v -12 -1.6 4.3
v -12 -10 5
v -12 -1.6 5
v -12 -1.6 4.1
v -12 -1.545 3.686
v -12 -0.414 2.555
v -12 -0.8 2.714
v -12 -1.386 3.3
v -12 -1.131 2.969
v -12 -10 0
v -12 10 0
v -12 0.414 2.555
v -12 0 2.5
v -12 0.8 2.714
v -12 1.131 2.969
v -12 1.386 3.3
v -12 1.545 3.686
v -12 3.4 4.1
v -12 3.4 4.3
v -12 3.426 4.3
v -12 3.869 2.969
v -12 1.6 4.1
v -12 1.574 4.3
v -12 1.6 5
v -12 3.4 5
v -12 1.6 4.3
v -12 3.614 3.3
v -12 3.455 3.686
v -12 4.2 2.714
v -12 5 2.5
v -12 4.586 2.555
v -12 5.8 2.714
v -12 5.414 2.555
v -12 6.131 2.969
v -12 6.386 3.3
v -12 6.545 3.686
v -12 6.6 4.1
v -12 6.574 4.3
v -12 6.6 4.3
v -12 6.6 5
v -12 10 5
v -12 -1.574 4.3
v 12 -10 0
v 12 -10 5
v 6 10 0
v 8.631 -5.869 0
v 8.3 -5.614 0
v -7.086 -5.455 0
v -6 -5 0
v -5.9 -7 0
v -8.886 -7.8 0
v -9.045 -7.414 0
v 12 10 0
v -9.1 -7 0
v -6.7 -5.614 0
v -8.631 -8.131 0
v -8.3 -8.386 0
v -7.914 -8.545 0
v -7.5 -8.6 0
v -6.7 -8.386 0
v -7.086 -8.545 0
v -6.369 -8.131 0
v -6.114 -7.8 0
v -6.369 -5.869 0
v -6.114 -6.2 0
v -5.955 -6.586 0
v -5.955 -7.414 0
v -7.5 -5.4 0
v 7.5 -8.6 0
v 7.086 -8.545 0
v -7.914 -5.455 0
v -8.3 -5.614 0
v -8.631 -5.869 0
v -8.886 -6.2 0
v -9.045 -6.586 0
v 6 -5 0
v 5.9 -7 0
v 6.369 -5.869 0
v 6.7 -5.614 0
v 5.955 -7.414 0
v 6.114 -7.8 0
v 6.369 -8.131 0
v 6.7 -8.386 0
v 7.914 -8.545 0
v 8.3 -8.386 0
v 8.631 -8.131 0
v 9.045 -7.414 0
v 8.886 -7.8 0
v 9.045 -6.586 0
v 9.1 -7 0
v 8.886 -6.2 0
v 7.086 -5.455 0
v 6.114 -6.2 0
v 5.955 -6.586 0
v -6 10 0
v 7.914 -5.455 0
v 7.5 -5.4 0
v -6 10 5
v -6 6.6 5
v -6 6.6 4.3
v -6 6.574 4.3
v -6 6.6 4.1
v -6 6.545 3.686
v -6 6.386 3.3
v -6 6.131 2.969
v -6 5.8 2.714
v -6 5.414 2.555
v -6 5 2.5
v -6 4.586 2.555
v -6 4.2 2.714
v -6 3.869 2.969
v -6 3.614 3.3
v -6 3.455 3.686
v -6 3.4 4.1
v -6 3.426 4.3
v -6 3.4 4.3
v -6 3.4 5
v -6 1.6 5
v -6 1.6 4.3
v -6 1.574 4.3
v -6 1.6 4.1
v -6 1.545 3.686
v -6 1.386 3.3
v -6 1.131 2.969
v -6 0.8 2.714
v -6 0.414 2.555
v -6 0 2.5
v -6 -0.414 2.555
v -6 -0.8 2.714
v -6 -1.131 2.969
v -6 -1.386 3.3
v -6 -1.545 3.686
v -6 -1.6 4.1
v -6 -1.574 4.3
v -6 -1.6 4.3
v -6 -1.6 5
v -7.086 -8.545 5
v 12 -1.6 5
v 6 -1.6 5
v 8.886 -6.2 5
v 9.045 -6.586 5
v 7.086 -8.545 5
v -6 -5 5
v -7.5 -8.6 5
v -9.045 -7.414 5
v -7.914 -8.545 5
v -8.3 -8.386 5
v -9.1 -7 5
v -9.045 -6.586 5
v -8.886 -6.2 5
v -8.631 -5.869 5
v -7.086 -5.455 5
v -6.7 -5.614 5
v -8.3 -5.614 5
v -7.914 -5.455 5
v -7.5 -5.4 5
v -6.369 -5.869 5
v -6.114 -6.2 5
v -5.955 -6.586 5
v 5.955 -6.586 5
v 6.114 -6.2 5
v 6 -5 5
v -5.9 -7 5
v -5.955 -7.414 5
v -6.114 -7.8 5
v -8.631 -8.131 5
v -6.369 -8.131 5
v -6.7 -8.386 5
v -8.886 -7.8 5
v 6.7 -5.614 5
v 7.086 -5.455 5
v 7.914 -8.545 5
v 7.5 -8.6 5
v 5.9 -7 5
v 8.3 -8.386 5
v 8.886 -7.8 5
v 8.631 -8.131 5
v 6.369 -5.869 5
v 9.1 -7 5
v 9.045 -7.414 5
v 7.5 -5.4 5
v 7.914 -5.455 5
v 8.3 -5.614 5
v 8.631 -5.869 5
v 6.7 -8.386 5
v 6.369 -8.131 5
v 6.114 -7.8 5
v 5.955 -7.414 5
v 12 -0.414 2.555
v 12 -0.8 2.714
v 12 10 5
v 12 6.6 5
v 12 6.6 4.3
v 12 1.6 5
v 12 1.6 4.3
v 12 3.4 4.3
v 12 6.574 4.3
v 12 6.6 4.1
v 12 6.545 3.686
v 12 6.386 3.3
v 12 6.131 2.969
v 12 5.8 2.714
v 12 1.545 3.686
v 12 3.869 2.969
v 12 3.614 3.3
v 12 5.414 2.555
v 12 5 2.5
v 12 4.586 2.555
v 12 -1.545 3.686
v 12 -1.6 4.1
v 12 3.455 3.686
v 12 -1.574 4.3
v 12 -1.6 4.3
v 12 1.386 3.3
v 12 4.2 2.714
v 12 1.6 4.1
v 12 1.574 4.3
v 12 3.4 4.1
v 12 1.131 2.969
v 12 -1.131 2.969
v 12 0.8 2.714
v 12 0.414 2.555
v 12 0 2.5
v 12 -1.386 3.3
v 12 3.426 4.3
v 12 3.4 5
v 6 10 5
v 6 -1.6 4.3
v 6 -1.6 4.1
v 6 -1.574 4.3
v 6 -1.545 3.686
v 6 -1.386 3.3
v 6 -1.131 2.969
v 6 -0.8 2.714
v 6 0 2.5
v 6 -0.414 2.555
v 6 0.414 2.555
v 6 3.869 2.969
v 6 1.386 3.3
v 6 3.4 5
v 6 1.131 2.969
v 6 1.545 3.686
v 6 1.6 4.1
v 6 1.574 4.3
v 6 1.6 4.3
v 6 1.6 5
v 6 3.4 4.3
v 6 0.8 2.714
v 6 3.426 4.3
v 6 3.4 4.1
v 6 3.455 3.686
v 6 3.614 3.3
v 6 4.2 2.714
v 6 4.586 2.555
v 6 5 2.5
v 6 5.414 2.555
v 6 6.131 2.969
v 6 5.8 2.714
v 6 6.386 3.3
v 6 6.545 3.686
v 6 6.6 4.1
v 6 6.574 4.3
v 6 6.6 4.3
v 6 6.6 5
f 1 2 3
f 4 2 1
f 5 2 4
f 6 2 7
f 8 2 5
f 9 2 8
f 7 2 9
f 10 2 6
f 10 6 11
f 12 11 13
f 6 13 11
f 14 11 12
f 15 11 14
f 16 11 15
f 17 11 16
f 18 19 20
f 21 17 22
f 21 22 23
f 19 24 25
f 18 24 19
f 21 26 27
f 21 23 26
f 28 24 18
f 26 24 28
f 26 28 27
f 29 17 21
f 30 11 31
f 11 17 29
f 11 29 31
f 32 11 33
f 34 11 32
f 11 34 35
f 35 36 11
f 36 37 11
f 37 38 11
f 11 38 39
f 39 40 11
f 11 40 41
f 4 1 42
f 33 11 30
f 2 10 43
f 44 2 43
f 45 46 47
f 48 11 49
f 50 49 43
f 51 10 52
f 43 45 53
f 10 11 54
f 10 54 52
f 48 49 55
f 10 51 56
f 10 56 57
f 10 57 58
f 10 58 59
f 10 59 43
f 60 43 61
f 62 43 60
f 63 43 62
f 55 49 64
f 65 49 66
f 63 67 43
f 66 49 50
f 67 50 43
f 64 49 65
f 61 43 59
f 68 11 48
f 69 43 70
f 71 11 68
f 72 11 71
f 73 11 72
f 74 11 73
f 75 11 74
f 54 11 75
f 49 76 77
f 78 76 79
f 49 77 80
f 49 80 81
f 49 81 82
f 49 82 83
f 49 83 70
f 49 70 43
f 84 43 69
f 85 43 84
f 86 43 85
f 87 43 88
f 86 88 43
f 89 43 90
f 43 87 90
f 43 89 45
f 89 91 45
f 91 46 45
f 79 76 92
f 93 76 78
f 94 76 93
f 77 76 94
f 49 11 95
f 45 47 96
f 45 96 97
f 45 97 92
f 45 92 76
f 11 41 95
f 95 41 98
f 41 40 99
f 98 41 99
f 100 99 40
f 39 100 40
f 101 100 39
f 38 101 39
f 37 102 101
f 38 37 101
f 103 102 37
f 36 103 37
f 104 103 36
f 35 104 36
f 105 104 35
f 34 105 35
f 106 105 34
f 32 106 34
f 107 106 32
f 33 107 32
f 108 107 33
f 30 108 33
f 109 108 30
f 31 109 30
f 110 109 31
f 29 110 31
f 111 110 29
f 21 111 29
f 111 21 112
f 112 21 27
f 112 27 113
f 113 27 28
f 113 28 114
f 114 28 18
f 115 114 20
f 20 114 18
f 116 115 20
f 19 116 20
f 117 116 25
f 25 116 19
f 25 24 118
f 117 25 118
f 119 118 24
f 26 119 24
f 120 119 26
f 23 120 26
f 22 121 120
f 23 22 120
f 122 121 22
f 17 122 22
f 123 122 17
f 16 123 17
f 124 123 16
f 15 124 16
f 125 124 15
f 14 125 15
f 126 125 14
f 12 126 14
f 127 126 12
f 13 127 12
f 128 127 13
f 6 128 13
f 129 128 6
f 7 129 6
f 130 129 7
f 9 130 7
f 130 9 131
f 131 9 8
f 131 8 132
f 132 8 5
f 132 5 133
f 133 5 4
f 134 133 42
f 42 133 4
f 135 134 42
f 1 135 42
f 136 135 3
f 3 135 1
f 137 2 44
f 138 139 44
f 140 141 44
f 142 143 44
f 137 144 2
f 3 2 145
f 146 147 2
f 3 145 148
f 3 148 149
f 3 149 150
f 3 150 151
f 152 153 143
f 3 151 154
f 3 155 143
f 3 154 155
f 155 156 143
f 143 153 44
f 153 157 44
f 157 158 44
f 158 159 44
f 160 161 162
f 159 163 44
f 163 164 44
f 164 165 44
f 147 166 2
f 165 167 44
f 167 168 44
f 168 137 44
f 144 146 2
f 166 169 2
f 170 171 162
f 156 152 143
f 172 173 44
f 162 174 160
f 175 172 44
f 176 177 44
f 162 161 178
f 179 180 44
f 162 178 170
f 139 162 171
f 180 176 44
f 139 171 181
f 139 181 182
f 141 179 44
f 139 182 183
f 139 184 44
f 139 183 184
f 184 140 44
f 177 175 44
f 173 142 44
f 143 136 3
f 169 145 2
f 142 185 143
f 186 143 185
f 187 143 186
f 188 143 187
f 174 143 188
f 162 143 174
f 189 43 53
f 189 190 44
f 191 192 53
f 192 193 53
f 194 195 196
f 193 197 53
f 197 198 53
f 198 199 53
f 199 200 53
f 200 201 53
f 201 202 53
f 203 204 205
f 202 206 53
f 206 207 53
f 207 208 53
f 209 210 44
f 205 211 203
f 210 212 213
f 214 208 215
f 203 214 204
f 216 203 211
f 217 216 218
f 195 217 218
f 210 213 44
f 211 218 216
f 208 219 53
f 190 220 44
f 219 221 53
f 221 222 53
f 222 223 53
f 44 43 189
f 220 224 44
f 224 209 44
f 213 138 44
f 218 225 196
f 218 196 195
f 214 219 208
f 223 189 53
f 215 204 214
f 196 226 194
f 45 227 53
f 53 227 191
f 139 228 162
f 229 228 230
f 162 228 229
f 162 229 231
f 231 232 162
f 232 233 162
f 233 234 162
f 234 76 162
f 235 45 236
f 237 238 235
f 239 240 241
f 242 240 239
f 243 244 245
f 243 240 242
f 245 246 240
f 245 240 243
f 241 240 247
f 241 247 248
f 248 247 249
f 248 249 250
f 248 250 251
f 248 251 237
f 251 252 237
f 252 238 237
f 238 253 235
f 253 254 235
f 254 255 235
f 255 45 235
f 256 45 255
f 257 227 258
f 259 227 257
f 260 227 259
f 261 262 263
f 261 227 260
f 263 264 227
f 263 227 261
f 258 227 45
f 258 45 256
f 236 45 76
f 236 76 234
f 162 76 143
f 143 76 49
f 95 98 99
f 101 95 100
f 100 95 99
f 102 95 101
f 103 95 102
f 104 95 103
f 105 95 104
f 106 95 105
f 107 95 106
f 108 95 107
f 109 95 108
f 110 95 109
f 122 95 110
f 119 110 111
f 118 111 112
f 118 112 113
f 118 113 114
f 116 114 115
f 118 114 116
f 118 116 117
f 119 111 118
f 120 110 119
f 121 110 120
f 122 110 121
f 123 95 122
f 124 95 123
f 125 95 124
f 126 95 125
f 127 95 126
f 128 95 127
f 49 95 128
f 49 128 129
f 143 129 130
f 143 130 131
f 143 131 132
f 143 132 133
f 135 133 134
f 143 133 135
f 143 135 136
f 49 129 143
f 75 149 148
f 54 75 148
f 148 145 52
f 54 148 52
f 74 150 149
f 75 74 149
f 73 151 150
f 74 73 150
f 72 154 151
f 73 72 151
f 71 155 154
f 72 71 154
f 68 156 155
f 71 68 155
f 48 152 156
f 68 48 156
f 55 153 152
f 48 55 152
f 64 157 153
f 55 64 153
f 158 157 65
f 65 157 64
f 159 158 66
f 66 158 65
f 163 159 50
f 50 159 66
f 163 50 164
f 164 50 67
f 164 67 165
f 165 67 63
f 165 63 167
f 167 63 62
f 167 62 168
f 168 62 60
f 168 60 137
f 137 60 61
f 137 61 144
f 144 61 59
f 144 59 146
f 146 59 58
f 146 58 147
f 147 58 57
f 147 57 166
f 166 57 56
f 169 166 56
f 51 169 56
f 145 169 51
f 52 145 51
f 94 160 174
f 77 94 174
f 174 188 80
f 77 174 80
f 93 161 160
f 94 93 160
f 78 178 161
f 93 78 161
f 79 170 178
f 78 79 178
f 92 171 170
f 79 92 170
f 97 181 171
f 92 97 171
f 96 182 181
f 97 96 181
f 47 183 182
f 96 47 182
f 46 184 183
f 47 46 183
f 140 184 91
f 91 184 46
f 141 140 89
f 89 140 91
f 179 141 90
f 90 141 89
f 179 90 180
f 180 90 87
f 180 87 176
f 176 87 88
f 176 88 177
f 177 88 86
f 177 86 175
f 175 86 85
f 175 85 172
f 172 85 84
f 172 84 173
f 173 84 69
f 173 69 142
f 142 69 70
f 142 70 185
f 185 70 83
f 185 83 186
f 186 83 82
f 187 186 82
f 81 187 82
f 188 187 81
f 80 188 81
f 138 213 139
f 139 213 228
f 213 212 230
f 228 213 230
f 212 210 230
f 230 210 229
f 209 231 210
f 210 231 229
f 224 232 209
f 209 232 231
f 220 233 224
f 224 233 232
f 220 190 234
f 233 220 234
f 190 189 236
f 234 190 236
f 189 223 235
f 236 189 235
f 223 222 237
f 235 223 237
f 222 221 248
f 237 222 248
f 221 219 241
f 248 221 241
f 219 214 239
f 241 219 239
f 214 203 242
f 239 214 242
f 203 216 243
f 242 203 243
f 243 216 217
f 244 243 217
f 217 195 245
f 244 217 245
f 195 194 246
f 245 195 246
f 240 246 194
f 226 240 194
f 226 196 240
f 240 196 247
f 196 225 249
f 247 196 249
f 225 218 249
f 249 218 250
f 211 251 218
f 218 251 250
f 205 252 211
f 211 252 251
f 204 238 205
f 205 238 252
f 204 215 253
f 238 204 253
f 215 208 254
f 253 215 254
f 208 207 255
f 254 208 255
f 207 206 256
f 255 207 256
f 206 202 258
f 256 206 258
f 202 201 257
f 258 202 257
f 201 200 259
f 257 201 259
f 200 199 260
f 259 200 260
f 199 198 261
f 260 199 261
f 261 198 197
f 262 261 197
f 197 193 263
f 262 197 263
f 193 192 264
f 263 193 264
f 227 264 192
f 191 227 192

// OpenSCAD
$fn=24;
height=5;
module bracket() {
	translate([0,0,height/2]) difference(){
		cube([24,20,height],center=true);
		translate([0,5,0]) cube([12,20,height+2],center=true);
		for(i=[1,-1]){
			translate([7.5*i,-7,0]) cylinder(r=3.2/2,h=height+2,center=true);
		}
        for(j=[0,1]) {
            translate([0,j*5,1.6]) rotate([0,90,0]) union() {
                translate([-5.2,0,0]) cube([10,3.2,35],center=true);
                cylinder(r=3.2/2,h=35,center=true);
            }
        }
	}
}

bracket();
